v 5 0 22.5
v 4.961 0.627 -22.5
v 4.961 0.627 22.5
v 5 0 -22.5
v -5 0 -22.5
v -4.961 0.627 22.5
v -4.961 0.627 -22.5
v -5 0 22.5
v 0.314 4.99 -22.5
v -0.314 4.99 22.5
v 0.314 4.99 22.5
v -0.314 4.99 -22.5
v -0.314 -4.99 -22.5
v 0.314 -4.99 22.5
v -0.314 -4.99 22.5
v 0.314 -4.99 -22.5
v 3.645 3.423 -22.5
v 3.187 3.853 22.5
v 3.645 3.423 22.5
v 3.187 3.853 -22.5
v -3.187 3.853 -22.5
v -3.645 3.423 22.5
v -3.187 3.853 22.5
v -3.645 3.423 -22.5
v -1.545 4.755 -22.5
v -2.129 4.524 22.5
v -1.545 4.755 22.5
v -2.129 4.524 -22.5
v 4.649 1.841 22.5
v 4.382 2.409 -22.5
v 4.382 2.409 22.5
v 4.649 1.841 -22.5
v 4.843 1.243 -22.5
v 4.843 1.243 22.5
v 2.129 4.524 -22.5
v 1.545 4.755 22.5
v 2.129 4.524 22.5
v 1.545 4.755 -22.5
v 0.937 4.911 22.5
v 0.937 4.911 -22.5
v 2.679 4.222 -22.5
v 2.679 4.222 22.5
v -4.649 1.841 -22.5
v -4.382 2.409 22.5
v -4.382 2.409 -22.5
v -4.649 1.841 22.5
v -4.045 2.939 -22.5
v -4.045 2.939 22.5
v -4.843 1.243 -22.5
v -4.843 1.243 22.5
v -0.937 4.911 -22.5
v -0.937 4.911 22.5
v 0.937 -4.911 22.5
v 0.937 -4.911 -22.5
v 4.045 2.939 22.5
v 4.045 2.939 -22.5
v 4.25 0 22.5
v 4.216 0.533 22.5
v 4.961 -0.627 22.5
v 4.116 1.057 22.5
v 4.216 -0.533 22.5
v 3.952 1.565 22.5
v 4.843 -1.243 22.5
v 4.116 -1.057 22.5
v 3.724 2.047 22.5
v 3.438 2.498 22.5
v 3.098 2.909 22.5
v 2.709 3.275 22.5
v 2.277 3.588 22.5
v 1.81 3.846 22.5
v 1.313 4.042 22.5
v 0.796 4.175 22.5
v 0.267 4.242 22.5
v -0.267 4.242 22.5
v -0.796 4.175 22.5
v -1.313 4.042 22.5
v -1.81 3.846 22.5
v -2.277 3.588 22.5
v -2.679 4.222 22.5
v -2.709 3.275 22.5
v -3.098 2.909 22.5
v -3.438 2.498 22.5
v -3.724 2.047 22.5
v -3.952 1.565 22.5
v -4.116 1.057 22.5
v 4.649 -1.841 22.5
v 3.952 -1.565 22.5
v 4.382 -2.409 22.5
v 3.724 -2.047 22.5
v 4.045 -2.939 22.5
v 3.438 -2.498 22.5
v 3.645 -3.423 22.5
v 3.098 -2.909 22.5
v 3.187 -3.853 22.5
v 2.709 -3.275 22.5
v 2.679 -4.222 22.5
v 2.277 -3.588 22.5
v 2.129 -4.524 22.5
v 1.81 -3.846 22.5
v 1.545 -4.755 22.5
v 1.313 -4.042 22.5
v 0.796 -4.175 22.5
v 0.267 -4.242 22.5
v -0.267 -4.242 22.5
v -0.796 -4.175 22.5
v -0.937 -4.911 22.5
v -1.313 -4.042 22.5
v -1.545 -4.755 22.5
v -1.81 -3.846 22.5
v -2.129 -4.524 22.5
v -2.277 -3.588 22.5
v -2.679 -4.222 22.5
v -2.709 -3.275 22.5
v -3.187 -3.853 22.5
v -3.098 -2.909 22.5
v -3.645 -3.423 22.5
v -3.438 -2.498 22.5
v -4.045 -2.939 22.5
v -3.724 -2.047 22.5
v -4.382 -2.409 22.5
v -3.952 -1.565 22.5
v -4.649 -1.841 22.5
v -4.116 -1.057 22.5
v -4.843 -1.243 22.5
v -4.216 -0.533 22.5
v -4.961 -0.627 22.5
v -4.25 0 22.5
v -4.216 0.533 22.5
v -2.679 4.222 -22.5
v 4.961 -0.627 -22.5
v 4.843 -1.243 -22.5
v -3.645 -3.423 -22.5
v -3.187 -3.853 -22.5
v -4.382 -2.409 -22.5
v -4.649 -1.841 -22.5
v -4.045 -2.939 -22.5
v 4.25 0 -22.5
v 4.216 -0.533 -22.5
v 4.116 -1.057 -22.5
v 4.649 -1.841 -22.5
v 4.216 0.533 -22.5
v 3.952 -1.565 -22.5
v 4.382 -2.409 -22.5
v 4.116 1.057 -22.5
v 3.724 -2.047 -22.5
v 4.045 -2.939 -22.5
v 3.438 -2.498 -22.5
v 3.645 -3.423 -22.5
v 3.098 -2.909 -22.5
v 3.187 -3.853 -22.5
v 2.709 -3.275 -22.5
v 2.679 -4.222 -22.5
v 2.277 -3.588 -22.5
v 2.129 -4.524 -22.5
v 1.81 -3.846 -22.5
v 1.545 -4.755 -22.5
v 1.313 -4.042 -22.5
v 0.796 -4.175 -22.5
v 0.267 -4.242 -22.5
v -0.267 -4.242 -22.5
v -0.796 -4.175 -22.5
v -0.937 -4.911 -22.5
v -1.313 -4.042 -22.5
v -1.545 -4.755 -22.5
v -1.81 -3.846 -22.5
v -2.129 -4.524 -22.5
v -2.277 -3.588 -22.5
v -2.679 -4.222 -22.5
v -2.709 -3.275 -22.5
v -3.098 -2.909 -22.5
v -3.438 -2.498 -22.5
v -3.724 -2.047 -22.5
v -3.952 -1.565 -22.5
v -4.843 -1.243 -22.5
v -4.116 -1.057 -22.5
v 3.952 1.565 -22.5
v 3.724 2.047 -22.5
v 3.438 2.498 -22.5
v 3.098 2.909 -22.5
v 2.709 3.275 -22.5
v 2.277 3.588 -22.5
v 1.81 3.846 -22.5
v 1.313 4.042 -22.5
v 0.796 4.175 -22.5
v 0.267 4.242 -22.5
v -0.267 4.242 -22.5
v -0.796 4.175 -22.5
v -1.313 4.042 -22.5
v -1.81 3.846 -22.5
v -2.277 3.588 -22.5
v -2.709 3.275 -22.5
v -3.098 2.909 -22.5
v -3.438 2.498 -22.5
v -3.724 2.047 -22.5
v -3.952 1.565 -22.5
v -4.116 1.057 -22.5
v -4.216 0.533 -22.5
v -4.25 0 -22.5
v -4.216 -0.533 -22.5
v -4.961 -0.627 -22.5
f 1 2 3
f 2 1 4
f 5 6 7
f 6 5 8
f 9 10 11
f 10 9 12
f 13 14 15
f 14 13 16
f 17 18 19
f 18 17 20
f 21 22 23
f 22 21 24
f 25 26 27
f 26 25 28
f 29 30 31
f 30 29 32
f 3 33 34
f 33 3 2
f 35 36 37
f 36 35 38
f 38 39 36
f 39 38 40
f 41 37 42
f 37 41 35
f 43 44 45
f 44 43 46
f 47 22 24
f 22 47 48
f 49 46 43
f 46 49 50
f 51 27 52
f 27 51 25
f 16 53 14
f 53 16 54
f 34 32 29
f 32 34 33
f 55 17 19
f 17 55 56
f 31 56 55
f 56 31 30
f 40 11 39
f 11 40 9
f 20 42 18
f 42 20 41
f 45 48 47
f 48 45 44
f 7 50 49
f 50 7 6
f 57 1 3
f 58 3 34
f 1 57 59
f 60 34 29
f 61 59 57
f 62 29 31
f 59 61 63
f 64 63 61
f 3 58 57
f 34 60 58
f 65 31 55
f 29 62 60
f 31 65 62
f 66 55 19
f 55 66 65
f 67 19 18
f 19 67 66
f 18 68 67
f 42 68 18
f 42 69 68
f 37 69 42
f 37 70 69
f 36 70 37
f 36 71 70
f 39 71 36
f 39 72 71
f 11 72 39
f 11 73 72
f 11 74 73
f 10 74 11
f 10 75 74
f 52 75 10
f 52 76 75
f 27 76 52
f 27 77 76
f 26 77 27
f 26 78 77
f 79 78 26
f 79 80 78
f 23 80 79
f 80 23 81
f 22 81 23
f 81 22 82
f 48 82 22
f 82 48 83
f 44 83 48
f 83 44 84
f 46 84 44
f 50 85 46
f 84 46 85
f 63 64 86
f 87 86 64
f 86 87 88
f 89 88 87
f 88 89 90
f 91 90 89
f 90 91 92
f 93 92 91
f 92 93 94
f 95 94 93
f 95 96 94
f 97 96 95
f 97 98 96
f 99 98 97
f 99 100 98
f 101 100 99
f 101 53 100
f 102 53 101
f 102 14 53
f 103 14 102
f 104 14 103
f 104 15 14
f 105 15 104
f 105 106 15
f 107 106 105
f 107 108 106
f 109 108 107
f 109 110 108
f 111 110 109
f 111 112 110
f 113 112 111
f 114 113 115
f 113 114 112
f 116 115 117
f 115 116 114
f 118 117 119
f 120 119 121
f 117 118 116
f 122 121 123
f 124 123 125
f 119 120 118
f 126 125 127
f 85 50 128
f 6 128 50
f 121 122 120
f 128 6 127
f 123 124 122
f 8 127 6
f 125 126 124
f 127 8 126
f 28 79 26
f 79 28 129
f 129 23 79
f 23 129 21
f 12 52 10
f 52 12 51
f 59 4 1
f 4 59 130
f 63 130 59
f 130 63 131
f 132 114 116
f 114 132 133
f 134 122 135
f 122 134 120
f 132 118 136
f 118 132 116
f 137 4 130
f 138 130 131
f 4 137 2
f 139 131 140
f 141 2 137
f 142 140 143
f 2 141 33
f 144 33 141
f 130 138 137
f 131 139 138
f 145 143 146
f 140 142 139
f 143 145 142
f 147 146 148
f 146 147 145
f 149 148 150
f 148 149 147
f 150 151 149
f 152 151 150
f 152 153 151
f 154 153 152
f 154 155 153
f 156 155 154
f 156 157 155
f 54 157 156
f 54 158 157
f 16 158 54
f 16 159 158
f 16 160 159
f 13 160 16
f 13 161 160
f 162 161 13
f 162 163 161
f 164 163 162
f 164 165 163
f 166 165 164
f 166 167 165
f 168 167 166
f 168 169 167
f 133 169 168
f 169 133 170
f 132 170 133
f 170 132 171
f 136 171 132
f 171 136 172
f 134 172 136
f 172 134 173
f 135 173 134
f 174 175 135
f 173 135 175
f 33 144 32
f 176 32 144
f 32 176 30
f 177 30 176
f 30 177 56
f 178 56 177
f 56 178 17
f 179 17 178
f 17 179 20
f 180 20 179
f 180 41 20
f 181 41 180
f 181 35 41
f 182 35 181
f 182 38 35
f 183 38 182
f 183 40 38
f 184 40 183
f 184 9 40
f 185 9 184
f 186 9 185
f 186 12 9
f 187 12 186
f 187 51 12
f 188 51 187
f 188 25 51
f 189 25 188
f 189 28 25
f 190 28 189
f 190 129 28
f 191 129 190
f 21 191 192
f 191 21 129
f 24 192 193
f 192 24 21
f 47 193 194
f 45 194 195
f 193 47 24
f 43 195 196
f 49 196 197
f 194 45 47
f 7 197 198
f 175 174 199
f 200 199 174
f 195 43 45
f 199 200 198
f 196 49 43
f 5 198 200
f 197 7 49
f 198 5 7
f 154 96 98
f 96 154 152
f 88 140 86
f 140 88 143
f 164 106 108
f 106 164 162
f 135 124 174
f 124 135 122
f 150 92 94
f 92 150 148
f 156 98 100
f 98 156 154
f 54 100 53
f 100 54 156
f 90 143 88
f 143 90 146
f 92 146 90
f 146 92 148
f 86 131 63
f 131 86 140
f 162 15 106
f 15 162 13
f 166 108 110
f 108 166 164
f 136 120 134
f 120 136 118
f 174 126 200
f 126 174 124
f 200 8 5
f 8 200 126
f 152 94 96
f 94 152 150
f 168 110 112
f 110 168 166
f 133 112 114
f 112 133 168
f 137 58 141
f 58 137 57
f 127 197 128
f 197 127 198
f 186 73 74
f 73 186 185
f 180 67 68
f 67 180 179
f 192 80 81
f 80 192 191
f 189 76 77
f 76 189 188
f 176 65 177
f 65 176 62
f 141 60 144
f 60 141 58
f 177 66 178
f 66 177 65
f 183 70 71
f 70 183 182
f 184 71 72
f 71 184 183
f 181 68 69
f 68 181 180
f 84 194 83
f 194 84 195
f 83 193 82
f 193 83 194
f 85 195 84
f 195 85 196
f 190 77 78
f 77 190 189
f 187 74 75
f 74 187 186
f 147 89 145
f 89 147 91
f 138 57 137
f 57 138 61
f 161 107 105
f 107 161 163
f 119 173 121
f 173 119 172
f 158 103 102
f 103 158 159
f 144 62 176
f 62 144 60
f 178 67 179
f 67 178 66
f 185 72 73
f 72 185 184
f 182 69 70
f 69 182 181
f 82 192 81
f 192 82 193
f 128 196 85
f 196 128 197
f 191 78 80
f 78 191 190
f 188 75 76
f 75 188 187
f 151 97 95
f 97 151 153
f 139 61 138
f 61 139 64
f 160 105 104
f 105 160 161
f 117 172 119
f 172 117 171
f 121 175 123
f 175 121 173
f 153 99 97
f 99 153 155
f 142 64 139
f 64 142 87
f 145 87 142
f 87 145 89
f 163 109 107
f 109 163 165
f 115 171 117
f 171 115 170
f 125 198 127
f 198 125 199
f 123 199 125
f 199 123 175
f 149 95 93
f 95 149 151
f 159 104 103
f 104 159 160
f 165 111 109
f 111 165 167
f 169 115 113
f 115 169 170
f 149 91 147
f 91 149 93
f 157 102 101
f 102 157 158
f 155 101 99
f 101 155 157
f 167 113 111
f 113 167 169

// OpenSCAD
$fn = 50;


difference() {
	union() {
		translate(v = [0, 0, -22.5000000000]) {
			cylinder(h = 45, r = 5.0000000000);
		}
	}
	union() {
		translate(v = [0, 0, -100.0000000000]) {
			cylinder(h = 200, r = 4.2500000000);
		}
	}
}
